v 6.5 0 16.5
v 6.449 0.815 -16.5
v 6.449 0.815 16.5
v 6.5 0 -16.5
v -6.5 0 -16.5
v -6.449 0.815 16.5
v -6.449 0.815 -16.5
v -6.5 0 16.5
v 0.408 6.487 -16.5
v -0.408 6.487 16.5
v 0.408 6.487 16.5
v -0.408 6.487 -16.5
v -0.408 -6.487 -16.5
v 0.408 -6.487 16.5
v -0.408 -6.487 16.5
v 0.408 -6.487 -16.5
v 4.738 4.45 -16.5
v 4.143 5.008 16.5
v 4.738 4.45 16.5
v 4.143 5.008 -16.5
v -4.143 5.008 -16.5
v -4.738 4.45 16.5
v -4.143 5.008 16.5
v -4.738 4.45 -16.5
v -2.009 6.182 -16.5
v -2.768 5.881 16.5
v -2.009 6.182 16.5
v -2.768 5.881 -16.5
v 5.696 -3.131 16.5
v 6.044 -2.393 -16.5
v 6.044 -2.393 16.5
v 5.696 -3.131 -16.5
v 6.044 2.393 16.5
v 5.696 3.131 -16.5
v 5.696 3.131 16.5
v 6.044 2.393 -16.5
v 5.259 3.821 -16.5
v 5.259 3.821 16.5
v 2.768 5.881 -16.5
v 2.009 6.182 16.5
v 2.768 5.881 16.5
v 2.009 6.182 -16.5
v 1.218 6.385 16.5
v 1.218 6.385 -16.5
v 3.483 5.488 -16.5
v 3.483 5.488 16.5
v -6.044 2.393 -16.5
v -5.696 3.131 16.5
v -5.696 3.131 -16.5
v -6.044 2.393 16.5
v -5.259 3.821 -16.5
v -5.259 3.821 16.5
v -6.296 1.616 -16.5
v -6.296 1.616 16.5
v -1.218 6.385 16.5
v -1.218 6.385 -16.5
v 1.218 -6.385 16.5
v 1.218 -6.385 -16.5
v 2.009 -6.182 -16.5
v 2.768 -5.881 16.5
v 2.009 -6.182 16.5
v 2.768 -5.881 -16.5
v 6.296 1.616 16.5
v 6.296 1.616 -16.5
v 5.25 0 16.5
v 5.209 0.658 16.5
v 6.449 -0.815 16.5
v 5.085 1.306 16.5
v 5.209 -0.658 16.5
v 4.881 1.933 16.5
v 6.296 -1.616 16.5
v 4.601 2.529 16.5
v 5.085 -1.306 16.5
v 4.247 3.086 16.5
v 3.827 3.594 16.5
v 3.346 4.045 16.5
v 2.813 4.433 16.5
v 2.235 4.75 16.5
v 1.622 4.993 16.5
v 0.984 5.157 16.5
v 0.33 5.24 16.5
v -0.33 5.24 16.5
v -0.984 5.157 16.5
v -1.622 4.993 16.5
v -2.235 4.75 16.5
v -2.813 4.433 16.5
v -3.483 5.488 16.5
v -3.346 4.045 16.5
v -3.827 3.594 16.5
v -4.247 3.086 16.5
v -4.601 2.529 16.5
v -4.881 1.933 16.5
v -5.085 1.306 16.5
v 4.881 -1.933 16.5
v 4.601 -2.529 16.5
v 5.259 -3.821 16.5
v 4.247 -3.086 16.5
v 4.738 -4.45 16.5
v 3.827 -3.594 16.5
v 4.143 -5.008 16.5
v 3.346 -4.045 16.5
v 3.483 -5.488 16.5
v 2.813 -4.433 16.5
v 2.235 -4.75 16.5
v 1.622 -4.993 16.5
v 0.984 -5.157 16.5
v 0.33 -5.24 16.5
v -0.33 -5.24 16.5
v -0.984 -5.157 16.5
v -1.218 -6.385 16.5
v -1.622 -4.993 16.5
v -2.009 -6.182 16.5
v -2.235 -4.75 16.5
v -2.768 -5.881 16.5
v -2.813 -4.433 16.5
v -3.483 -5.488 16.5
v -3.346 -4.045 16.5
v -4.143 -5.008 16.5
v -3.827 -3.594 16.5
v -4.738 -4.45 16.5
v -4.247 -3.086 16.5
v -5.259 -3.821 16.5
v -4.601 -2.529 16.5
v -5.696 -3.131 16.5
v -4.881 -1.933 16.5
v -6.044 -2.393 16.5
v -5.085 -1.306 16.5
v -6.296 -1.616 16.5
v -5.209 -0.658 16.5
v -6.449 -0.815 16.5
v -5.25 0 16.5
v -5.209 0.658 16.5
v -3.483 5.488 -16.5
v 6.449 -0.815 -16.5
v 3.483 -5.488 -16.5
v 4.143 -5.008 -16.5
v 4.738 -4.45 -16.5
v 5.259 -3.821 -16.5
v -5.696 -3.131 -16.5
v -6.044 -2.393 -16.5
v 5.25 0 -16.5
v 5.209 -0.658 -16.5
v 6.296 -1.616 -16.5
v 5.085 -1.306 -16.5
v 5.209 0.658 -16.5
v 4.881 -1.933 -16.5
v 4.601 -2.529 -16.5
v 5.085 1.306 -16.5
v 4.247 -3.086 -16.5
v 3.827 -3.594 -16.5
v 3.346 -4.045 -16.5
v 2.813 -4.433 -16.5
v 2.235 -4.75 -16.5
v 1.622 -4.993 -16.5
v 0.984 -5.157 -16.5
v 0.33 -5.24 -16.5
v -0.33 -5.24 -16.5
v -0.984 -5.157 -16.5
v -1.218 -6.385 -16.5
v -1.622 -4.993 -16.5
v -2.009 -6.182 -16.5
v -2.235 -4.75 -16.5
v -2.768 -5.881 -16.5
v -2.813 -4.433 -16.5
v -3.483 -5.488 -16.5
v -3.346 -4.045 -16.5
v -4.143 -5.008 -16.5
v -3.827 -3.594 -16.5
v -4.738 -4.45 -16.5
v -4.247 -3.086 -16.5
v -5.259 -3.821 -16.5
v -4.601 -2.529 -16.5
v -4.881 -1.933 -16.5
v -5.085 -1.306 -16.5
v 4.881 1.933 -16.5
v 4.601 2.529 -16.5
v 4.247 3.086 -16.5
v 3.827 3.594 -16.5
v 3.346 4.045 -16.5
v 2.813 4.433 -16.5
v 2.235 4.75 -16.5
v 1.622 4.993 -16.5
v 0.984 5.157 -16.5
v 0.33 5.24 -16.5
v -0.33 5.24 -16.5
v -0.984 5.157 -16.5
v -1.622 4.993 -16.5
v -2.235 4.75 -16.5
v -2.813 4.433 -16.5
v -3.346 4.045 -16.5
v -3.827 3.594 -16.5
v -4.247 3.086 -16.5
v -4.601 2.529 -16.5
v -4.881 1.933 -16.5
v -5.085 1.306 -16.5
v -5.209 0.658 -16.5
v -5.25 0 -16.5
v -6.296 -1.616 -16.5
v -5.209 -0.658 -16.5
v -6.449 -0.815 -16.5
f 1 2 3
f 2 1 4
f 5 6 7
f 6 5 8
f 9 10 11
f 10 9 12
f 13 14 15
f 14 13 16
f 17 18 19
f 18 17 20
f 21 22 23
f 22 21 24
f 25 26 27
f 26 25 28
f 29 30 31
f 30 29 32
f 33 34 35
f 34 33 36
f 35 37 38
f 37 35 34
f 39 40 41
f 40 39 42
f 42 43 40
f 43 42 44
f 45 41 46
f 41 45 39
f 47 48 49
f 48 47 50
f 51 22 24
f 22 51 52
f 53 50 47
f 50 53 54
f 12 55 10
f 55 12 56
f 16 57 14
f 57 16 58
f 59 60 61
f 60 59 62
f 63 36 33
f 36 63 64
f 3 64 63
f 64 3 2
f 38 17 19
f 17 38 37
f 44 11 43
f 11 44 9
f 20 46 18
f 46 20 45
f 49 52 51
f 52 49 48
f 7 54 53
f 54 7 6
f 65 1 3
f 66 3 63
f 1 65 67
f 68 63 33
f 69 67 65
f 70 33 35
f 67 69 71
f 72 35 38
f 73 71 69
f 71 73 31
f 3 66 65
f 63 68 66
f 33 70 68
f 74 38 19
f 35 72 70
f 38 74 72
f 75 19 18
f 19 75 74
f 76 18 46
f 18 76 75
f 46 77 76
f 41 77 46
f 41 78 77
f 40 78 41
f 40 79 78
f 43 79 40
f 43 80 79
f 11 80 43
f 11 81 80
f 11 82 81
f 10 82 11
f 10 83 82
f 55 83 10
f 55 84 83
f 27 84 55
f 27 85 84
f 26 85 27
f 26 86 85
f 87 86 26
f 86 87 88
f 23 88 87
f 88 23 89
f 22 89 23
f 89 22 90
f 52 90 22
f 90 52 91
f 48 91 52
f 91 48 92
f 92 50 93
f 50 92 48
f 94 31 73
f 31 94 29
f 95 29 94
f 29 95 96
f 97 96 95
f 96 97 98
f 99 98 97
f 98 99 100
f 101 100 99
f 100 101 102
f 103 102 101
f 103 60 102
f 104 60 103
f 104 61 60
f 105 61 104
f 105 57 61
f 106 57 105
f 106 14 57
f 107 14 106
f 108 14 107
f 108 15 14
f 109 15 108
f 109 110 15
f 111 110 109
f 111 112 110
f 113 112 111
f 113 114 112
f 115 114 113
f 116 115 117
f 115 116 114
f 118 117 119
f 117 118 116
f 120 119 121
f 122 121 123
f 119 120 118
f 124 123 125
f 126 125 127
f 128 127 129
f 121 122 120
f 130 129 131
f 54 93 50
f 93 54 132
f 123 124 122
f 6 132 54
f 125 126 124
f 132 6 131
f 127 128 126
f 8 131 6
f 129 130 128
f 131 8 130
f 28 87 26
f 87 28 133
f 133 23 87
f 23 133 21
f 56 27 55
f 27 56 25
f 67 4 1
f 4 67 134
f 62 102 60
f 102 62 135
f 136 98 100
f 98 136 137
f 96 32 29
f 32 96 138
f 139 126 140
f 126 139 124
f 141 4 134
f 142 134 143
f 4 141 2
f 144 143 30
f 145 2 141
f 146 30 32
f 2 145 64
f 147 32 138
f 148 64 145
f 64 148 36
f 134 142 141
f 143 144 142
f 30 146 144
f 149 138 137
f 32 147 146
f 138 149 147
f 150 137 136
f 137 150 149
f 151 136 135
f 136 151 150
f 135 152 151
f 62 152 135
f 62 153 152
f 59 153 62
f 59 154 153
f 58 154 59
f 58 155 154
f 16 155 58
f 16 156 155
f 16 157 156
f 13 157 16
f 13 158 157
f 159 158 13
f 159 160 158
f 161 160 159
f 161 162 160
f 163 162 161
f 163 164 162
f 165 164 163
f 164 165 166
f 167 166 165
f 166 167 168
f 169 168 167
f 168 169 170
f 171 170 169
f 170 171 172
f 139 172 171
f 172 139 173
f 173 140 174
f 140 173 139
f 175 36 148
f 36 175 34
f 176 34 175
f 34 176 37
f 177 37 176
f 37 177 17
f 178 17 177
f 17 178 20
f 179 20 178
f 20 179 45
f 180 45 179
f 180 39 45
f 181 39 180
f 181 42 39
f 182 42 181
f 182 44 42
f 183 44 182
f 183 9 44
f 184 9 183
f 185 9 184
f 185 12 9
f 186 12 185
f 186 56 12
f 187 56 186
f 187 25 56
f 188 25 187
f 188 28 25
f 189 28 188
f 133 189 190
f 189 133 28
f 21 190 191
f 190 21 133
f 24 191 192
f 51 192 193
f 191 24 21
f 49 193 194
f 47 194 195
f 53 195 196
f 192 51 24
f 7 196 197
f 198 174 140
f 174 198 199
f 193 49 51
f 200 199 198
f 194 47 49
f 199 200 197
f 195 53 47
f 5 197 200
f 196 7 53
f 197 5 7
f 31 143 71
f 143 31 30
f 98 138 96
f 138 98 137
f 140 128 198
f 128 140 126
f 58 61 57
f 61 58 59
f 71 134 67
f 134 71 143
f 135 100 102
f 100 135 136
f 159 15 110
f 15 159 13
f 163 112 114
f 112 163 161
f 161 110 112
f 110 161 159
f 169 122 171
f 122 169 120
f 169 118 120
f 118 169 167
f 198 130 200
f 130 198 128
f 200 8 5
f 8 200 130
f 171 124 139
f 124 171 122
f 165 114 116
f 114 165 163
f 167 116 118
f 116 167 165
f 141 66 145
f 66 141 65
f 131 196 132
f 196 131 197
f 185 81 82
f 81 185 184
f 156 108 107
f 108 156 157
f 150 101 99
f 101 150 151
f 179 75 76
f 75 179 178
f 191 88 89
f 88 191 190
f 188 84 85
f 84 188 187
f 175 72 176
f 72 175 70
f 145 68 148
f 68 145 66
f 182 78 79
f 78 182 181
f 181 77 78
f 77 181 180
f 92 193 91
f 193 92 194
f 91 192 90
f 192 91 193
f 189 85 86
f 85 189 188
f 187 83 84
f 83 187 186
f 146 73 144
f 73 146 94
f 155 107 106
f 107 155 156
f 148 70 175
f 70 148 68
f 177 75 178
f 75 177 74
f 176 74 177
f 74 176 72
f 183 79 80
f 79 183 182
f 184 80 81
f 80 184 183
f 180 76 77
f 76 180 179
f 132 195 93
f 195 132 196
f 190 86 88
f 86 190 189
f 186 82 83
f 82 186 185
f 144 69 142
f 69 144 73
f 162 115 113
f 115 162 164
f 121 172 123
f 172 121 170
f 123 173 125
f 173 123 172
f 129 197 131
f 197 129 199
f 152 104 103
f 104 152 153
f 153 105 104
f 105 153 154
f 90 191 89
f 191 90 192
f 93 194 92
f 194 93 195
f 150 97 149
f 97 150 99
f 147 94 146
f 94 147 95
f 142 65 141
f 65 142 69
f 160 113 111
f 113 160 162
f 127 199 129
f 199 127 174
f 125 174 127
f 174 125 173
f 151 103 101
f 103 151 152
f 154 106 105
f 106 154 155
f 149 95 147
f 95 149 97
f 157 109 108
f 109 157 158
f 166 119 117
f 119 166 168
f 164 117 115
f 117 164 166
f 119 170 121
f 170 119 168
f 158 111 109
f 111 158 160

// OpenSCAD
$fn = 50;


difference() {
	union() {
		translate(v = [0, 0, -16.5000000000]) {
			cylinder(h = 33, r = 6.5000000000);
		}
	}
	union() {
		translate(v = [0, 0, -100.0000000000]) {
			cylinder(h = 200, r = 5.2500000000);
		}
	}
}
